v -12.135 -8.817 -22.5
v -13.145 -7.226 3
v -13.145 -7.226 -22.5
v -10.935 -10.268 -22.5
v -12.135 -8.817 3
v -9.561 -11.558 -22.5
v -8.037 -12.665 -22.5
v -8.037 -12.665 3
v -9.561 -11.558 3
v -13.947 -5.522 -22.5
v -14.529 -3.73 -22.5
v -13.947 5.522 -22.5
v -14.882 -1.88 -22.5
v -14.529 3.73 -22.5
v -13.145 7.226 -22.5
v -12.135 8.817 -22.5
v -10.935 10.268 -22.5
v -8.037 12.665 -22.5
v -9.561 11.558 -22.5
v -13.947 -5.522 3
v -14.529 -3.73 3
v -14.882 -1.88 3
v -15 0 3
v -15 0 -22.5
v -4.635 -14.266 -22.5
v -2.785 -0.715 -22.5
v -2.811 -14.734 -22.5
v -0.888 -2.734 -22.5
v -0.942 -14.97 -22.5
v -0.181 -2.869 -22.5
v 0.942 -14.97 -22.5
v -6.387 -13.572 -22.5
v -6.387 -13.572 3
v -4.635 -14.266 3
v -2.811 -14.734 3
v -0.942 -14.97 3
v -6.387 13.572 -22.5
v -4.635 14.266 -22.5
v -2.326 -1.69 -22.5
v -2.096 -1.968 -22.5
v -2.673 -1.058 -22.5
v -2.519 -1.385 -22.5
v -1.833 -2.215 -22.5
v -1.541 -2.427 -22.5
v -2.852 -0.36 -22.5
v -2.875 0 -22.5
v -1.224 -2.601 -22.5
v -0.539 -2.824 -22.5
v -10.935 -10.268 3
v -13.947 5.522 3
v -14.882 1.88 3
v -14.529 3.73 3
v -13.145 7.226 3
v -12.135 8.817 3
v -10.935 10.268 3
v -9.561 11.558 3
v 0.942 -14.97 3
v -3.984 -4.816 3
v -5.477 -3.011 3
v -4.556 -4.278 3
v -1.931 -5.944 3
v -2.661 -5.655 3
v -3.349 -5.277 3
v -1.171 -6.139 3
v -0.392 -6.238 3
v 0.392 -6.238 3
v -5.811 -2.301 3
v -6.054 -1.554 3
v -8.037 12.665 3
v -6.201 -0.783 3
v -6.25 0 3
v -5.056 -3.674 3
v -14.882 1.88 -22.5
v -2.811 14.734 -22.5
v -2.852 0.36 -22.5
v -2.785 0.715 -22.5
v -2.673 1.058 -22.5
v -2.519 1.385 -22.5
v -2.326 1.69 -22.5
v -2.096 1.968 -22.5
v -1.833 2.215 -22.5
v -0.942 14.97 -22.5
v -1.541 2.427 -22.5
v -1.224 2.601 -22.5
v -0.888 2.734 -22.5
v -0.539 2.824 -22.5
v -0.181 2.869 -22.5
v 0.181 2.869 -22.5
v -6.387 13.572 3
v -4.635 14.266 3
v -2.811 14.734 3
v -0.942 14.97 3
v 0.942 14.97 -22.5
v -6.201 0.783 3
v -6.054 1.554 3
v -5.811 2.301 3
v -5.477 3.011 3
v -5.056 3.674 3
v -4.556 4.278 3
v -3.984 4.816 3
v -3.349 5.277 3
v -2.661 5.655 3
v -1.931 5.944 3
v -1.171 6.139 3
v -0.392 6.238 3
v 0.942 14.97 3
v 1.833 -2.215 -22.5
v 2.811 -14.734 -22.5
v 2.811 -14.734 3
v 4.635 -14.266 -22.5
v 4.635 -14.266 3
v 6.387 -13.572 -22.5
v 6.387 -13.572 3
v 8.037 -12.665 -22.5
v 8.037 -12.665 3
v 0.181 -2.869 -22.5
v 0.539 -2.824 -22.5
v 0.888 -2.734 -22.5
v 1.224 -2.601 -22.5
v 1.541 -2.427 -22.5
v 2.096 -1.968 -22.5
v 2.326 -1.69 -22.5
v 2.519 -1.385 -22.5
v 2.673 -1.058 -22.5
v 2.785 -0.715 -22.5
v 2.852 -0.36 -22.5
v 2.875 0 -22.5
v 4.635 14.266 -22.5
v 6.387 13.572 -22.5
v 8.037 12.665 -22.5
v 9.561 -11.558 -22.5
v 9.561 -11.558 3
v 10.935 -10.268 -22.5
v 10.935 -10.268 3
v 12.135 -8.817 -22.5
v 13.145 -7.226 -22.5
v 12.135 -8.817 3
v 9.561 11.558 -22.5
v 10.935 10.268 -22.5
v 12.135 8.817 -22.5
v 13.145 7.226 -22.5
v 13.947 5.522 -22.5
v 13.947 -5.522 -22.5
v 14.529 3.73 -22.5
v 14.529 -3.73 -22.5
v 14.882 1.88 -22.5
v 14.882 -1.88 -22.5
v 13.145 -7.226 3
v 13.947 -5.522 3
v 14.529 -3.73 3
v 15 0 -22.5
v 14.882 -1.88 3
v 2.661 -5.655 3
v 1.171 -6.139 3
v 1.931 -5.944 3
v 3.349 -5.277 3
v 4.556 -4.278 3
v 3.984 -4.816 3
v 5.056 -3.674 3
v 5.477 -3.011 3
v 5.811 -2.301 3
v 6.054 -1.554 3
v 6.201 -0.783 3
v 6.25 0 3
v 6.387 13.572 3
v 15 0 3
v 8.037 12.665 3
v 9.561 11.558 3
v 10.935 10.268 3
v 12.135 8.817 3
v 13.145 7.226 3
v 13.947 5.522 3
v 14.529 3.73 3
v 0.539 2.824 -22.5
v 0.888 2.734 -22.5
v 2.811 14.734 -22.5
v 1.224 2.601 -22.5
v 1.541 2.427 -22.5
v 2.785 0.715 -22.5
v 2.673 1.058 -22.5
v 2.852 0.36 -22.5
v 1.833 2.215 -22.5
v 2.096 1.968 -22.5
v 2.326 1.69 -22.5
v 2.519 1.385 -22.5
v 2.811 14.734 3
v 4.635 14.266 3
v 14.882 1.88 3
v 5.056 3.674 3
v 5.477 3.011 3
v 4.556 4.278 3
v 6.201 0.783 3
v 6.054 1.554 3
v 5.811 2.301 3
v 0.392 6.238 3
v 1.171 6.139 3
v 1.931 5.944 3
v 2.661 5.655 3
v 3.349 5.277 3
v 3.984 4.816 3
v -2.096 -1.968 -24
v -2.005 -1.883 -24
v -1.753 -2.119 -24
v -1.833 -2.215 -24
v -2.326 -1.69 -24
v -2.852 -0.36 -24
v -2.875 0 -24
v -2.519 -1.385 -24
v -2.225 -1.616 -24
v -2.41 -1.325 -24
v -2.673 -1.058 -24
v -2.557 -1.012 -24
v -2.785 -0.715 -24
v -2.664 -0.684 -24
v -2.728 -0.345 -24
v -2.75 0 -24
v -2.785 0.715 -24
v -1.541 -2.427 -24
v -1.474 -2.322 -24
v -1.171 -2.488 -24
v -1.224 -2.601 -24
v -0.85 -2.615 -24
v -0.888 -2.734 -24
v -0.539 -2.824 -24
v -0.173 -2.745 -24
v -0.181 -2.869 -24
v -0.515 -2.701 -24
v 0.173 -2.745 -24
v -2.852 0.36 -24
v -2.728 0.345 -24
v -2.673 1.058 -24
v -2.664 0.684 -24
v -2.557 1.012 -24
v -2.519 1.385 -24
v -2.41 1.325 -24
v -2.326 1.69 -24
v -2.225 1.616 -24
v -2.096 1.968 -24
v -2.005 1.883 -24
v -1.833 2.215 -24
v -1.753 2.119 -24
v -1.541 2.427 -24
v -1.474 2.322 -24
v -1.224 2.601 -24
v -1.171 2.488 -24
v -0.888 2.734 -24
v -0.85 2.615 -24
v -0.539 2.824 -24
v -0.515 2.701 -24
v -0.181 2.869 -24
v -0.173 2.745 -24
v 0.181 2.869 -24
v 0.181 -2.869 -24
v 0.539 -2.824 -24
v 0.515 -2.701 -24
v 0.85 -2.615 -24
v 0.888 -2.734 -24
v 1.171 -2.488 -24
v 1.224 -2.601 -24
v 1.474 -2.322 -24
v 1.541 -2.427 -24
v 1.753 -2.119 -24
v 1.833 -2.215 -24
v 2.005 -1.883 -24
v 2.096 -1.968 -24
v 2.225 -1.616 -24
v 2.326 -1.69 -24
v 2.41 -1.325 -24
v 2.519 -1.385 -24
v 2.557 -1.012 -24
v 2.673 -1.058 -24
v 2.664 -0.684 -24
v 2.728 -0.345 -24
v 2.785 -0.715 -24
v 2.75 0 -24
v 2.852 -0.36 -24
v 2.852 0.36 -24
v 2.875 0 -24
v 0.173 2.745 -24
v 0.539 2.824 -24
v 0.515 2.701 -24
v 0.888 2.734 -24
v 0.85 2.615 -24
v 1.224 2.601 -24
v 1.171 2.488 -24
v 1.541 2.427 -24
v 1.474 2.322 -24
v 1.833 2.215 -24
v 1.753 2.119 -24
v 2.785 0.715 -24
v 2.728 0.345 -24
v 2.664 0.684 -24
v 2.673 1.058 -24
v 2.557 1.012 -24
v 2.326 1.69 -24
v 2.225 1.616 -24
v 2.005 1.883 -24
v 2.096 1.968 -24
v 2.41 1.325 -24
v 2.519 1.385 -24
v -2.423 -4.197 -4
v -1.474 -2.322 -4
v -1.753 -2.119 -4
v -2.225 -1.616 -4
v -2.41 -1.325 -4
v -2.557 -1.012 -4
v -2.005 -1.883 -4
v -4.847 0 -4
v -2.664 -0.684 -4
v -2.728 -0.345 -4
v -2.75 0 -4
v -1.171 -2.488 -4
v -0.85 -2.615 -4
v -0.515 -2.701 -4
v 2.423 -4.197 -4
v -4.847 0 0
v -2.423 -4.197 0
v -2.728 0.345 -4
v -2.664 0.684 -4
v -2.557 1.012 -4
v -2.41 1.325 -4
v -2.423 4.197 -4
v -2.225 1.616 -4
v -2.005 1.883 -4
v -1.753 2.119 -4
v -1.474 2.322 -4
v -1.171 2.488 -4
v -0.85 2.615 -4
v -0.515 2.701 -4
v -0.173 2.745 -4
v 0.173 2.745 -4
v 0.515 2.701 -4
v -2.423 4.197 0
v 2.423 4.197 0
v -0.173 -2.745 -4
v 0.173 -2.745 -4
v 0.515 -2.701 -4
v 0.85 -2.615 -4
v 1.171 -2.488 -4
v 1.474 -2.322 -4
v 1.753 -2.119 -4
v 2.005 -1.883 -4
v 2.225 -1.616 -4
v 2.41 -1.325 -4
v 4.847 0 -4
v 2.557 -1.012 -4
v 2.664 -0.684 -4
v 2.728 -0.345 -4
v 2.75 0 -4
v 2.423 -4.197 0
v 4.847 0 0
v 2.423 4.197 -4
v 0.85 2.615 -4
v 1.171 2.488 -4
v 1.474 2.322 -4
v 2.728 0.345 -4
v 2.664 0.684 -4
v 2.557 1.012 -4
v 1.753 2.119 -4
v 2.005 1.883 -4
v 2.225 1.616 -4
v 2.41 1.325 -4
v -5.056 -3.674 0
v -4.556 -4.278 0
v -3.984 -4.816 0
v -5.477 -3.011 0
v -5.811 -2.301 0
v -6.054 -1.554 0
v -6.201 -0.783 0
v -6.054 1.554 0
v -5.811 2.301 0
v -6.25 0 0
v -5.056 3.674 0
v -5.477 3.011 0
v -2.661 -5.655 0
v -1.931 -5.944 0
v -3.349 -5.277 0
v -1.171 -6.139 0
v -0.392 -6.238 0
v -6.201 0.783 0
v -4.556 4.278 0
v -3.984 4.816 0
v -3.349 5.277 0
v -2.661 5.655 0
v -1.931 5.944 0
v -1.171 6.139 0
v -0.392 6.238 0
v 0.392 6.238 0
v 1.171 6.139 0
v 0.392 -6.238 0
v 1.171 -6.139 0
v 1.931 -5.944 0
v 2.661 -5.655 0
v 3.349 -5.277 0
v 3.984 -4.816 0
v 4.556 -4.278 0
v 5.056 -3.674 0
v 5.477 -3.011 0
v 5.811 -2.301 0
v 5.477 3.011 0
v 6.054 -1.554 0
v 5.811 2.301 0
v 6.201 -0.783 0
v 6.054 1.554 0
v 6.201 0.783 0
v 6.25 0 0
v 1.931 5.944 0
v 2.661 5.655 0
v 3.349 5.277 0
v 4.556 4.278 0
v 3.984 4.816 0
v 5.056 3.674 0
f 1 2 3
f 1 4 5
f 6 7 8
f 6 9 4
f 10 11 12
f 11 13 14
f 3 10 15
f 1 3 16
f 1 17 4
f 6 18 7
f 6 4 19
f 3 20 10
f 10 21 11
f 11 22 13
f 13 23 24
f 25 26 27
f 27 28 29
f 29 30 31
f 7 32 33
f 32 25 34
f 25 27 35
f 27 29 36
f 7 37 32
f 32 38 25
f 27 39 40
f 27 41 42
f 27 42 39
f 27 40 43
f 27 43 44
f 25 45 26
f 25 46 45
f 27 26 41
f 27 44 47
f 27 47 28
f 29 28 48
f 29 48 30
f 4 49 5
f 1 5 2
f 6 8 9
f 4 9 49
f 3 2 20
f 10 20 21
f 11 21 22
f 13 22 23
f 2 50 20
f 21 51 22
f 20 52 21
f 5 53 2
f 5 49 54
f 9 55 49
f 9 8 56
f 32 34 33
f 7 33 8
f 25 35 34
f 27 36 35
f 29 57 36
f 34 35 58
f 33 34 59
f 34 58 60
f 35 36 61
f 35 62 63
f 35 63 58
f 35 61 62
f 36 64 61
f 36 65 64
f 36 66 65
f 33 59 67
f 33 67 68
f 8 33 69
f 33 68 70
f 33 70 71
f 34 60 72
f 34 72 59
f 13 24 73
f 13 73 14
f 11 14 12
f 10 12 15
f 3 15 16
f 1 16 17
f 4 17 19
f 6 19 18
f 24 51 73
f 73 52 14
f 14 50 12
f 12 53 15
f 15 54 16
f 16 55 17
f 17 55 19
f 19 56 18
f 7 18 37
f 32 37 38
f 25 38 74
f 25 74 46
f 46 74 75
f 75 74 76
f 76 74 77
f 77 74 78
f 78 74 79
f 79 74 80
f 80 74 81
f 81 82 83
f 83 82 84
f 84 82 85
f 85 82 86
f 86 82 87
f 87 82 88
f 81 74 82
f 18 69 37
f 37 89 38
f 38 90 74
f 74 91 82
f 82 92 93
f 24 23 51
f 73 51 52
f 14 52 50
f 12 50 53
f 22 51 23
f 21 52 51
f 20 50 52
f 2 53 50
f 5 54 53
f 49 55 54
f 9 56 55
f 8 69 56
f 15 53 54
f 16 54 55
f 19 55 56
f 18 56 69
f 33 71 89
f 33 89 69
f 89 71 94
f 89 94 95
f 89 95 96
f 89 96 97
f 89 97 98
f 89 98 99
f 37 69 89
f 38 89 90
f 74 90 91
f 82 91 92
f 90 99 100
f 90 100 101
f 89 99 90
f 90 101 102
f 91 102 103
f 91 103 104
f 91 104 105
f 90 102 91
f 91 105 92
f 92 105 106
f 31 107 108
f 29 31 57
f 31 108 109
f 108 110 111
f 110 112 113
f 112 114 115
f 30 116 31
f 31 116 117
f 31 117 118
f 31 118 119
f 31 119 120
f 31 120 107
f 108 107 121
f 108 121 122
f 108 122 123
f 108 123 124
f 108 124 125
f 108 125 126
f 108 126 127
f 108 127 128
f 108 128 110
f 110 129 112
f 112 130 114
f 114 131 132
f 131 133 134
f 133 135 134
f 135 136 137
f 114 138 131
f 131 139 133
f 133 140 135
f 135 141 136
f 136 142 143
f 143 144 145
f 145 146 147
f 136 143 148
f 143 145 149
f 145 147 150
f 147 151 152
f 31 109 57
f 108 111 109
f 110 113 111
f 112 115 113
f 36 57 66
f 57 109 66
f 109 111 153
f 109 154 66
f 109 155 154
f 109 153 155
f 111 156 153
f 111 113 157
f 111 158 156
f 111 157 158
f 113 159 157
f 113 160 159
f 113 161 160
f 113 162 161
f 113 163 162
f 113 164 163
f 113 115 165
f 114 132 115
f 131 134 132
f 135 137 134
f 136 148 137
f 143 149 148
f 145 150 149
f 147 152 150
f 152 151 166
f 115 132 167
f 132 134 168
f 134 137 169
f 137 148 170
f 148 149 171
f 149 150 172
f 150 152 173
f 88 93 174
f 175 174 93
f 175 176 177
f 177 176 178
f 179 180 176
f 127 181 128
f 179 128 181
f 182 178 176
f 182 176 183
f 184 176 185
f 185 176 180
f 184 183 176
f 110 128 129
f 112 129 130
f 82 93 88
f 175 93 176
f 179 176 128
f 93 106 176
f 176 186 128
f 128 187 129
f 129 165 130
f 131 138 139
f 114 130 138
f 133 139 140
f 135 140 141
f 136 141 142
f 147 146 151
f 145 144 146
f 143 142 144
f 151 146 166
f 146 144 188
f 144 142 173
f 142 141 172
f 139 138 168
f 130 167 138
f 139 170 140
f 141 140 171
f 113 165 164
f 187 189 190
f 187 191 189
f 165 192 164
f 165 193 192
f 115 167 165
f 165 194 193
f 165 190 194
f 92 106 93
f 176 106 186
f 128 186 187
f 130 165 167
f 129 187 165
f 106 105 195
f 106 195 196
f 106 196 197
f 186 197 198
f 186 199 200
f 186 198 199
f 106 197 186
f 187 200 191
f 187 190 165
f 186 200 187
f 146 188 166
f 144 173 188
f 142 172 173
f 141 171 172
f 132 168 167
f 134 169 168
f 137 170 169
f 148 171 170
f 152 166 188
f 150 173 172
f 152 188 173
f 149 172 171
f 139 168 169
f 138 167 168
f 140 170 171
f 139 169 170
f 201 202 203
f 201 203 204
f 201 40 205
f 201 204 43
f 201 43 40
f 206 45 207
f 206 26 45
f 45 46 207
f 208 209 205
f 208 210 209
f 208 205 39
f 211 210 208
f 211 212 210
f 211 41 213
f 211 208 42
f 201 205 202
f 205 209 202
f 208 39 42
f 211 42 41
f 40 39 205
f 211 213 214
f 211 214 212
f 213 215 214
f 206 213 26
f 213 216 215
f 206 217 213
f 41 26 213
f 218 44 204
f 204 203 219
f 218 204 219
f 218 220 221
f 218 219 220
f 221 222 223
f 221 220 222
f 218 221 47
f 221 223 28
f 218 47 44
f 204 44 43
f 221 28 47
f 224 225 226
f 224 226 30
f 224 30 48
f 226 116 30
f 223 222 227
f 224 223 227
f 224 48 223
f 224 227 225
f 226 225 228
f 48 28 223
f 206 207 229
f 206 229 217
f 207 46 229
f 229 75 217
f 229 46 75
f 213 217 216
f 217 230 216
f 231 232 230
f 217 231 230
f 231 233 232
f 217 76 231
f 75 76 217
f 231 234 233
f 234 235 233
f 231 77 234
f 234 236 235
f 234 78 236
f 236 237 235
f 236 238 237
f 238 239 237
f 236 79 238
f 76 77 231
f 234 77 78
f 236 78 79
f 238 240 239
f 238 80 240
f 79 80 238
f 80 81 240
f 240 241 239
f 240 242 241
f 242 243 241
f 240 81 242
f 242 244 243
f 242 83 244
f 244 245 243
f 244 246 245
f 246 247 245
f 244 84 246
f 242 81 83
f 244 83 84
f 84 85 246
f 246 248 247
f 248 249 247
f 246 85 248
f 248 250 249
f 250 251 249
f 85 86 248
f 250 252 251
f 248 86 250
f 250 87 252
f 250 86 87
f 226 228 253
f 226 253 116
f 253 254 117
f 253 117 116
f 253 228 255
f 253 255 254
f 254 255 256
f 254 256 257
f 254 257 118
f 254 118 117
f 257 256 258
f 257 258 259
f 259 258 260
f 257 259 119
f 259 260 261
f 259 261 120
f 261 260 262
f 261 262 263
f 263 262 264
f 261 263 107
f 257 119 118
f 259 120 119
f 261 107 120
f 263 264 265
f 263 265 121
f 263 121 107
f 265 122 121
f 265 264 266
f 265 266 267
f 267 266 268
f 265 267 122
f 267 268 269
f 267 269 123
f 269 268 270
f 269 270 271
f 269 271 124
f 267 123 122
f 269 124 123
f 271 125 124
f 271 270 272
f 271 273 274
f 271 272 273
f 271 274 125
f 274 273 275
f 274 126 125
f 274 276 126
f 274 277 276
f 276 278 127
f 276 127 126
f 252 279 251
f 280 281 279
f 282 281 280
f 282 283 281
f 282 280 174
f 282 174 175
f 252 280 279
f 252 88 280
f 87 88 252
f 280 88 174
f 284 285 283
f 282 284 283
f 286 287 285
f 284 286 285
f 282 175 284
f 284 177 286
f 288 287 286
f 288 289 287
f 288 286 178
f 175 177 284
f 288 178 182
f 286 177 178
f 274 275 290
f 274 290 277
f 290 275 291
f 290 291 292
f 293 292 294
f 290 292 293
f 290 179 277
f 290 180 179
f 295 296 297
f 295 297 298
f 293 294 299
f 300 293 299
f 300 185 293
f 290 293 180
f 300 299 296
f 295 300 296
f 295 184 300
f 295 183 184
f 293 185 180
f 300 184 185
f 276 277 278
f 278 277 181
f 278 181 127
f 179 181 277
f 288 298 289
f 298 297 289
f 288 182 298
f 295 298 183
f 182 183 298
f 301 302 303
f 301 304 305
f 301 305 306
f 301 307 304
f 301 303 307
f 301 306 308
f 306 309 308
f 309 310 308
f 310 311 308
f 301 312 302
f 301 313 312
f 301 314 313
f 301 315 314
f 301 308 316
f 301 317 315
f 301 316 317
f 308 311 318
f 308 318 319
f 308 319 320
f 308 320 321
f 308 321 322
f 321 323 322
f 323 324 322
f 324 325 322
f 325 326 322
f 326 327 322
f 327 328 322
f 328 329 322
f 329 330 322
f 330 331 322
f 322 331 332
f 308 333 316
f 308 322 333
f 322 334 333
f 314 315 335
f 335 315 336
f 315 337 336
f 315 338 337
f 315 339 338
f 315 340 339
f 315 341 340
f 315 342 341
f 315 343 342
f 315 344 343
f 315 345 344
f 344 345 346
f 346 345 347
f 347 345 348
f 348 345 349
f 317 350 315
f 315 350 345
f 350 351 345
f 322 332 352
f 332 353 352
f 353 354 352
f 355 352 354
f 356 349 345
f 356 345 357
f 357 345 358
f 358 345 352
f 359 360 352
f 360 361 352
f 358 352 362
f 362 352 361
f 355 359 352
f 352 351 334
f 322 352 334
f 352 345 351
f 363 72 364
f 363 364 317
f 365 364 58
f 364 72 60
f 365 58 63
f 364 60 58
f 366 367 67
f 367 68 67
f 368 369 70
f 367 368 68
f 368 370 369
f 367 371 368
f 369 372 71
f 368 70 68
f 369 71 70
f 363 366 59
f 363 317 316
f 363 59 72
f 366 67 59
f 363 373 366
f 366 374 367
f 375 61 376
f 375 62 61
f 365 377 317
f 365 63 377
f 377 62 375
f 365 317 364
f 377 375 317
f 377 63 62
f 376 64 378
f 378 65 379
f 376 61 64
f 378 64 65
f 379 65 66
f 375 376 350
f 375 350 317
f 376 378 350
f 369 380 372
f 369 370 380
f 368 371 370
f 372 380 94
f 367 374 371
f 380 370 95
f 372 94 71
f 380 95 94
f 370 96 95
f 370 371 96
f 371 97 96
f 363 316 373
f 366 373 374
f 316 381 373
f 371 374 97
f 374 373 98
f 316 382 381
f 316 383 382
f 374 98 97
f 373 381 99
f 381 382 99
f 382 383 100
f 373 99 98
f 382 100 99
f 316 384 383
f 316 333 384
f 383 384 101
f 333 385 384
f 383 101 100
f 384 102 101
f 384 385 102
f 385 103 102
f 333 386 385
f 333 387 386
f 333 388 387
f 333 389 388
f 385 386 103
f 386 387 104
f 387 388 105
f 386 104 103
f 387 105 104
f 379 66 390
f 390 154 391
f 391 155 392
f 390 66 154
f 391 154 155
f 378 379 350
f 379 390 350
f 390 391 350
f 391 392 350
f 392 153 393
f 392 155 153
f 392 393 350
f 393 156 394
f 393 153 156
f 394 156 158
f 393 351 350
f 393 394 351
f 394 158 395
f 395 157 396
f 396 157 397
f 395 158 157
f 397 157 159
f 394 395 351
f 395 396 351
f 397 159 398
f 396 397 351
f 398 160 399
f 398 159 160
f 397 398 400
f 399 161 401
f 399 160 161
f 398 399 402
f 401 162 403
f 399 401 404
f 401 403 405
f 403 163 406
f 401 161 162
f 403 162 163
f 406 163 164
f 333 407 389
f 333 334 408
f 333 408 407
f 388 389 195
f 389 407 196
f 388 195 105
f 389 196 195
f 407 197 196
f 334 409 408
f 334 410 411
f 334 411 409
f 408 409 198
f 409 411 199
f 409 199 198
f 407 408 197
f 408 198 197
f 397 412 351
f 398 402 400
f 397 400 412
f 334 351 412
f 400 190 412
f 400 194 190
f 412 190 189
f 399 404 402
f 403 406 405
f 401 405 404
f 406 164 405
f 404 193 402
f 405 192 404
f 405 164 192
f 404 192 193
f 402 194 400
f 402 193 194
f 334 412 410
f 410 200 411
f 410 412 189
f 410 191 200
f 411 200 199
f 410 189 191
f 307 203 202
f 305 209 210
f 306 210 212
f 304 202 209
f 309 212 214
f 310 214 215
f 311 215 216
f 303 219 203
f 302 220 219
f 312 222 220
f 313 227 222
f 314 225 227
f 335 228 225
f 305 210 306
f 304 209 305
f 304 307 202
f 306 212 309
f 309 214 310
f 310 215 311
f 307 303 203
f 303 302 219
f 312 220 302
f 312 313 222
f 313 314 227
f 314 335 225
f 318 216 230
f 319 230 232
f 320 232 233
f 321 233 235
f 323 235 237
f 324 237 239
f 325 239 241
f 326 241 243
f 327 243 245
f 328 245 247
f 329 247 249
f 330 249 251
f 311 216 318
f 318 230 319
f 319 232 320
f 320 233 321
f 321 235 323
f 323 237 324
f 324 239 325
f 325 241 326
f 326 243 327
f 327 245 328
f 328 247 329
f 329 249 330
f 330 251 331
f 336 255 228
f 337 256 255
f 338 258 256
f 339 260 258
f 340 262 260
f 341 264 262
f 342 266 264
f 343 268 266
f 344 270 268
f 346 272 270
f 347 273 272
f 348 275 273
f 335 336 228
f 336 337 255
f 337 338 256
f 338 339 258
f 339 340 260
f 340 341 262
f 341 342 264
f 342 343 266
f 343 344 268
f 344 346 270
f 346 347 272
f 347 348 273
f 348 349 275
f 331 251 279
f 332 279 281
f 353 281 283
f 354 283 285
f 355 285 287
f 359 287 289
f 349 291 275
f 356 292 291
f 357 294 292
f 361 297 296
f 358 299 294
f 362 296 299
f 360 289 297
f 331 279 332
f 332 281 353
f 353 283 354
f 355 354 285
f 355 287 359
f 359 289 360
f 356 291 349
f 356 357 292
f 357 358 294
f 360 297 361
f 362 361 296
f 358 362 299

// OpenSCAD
$fn = 50;


difference() {
	union() {
		translate(v = [0, 0, -22.5000000000]) {
			cylinder(h = 25.5000000000, r = 15.0000000000);
		}
		#translate(v = [0, 0, -24.0000000000]) {
			cylinder(h = 24, r = 2.8750000000);
		}
	}
	union() {
		translate(v = [0, 0, 0]) {
			rotate(a = [0, 0, 0]) {
				difference() {
					union() {
						translate(v = [0, 0, -4]) {
							linear_extrude(height = 4) {
								polygon(points = [[4.8468000000, 0.0000000000], [2.4234000000, 4.1974519271], [-2.4234000000, 4.1974519271], [-4.8468000000, 0.0000000000], [-2.4234000000, -4.1974519271], [2.4234000000, -4.1974519271]]);
							}
						}
					}
					union();
				}
			}
		}
		#cylinder(h = 3, r = 6.2500000000);
		#translate(v = [0, 0, -100.0000000000]) {
			cylinder(h = 200, r = 2.7500000000);
		}
	}
}
